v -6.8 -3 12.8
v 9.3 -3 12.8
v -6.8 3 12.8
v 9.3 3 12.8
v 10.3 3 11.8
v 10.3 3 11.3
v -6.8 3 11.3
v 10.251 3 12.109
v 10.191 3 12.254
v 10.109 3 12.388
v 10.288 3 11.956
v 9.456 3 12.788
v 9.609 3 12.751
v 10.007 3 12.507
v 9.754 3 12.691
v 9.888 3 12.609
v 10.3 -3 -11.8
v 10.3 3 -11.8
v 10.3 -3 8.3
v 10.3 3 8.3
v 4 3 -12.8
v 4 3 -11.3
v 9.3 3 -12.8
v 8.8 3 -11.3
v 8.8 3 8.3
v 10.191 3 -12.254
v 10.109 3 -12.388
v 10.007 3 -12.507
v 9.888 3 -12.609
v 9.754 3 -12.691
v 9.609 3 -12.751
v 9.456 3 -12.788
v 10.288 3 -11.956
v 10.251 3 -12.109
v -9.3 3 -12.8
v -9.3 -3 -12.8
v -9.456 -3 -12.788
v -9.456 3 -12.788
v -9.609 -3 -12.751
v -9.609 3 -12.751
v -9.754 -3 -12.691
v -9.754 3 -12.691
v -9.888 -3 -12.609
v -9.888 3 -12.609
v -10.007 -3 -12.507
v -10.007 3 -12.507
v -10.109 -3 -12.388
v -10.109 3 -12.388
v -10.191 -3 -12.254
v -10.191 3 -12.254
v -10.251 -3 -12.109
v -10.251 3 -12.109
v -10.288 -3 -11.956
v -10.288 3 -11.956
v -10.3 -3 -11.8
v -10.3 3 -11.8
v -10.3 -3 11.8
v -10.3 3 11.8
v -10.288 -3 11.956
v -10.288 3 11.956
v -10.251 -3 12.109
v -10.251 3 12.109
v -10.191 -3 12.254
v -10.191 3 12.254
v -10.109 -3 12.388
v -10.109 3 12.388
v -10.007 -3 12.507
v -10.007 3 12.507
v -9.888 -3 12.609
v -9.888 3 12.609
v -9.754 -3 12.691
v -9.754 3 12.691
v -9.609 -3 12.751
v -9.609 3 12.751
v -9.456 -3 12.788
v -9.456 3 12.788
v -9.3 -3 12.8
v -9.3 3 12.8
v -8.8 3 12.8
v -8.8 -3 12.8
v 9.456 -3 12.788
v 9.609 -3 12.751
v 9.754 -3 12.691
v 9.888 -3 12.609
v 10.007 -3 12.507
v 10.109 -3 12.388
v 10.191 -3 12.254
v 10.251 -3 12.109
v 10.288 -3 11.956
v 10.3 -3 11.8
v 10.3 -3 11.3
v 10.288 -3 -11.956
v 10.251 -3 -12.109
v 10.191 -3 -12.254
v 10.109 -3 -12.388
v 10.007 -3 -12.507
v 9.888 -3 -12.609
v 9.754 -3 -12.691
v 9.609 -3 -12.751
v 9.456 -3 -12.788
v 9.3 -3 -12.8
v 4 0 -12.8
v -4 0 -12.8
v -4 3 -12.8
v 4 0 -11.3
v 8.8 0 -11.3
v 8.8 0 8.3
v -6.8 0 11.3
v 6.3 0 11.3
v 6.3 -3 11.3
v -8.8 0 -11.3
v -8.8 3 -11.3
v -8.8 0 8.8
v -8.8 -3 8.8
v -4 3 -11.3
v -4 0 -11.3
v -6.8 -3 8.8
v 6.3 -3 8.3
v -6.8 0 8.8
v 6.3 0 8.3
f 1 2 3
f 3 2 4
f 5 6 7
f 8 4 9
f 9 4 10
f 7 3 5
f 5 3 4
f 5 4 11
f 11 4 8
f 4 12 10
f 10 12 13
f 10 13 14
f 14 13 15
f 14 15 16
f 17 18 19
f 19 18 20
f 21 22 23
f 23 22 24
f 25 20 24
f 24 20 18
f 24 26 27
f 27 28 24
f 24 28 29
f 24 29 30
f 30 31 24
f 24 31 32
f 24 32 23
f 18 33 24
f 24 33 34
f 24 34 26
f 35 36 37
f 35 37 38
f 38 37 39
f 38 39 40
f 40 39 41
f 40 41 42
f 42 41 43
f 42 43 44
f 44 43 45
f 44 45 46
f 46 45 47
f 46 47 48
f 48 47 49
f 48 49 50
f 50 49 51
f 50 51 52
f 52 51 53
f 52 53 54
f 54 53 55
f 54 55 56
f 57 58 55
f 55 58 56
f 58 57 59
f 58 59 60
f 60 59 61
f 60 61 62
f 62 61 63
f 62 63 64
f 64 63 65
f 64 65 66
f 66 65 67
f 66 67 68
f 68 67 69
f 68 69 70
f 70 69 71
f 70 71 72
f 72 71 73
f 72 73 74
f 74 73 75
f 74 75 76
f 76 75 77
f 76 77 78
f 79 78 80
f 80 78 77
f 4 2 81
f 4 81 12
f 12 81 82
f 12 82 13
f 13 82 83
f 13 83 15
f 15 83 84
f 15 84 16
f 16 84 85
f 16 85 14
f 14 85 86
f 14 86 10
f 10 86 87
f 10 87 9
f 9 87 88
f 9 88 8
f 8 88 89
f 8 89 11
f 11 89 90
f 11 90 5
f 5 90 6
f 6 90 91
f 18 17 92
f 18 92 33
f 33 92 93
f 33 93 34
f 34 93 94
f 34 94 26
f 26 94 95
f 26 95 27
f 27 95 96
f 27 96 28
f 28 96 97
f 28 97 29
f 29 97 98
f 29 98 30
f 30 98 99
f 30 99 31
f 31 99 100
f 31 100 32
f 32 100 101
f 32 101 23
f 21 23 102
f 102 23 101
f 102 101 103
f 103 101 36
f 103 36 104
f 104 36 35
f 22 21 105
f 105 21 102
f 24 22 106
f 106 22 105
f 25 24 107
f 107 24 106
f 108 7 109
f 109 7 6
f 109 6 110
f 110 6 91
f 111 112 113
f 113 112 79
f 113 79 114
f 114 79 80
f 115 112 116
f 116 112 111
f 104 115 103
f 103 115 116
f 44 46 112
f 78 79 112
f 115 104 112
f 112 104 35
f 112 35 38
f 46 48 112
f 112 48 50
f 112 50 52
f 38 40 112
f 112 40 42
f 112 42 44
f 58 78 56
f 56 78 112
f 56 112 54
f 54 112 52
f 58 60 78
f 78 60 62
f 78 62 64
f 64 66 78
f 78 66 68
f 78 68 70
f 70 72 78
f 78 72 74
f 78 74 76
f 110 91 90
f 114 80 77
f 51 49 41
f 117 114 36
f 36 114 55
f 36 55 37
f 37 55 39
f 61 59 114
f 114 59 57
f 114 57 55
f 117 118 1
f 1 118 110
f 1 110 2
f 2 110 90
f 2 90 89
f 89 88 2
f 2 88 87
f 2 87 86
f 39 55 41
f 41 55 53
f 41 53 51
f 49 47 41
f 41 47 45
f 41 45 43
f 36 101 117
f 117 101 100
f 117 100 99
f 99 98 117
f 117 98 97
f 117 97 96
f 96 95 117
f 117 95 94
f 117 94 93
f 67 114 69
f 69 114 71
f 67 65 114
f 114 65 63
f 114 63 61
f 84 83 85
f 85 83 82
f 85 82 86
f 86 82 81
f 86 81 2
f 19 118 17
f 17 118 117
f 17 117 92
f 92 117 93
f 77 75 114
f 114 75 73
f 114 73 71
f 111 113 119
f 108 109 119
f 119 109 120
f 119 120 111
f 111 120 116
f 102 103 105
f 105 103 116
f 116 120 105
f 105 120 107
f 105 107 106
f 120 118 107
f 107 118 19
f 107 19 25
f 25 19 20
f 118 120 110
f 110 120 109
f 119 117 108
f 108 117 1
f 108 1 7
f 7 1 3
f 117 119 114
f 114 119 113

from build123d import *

# Parameters (mm, degrees)
SALIENTE_EXTRUIR1_DEPTH = 3
SALIENTE_EXTRUIR2_START = -3
SALIENTE_EXTRUIR2_DEPTH = 3
CROQUIS3_W              = 3
CROQUIS3_H              = 6
CORTAR_EXTRUIR3_DEPTH   = 4
CROQUIS4_W              = 2
CROQUIS4_H              = 6
CORTAR_EXTRUIR4_DEPTH   = 4


with BuildPart() as part:
    # Croquis1 → Saliente-Extruir1 (new body)
    with BuildSketch(Plane(origin=(0, 0, 0), x_dir=(1, 0, 0), z_dir=(0, 1, 0))):
        with BuildLine():
            Line((-4, 12.8), (-9.3, 12.8))
            ThreePointArc((-9.3, 12.8), (-10.007106781, 12.507106781), (-10.3, 11.8))
            Line((-10.3, 11.8), (-10.3, -11.8))
            ThreePointArc((-10.3, -11.8), (-10.007106781, -12.507106781), (-9.3, -12.8))
            Line((-9.3, -12.8), (9.3, -12.8))
            ThreePointArc((9.3, -12.8), (10.007106781, -12.507106781), (10.3, -11.8))
            Line((10.3, -11.8), (10.3, 11.8))
            ThreePointArc((10.3, 11.8), (10.007106781, 12.507106781), (9.3, 12.8))
            Line((9.3, 12.8), (4, 12.8))
            Line((4, 12.8), (4, 11.3))
            Line((4, 11.3), (8.8, 11.3))
            Line((8.8, 11.3), (8.8, -11.3))
            Line((8.8, -11.3), (-8.8, -11.3))
            Line((-8.8, -11.3), (-8.8, 11.3))
            Line((-8.8, 11.3), (-4, 11.3))
            Line((-4, 11.3), (-4, 12.8))
        make_face()
    extrude(amount=SALIENTE_EXTRUIR1_DEPTH)

    # Croquis1<3> → Saliente-Extruir2 (add)
    with BuildSketch(Plane(origin=(0, 0, 0), x_dir=(1, 0, 0), z_dir=(0, 1, 0)).offset(SALIENTE_EXTRUIR2_START)):
        with BuildLine():
            ThreePointArc((-9.3, 12.8), (-10.007106781, 12.507106781), (-10.3, 11.8))
            Line((-10.3, 11.8), (-10.3, -11.8))
            ThreePointArc((-10.3, -11.8), (-10.007106781, -12.507106781), (-9.3, -12.8))
            Line((-9.3, -12.8), (9.3, -12.8))
            ThreePointArc((9.3, -12.8), (10.007106781, -12.507106781), (10.3, -11.8))
            Line((10.3, -11.8), (10.3, 11.8))
            ThreePointArc((10.3, 11.8), (10.007106781, 12.507106781), (9.3, 12.8))
            Line((9.3, 12.8), (-9.3, 12.8))
        make_face()
    extrude(amount=SALIENTE_EXTRUIR2_DEPTH)

    # Croquis3 → Cortar-Extruir3 (cut)
    with BuildSketch(Plane(origin=(10.3, 0, 0), x_dir=(0, 0, -1), z_dir=(1, 0, 0))):
        with Locations((-9.8, 0)):
            Rectangle(CROQUIS3_W, CROQUIS3_H)
    extrude(amount=-CORTAR_EXTRUIR3_DEPTH, mode=Mode.SUBTRACT)

    # Croquis4 → Cortar-Extruir4 (cut)
    with BuildSketch(Plane.XY.offset(12.8)):
        with Locations((-7.8, 0)):
            Rectangle(CROQUIS4_W, CROQUIS4_H)
    extrude(amount=-CORTAR_EXTRUIR4_DEPTH, mode=Mode.SUBTRACT)


solid = part.part
